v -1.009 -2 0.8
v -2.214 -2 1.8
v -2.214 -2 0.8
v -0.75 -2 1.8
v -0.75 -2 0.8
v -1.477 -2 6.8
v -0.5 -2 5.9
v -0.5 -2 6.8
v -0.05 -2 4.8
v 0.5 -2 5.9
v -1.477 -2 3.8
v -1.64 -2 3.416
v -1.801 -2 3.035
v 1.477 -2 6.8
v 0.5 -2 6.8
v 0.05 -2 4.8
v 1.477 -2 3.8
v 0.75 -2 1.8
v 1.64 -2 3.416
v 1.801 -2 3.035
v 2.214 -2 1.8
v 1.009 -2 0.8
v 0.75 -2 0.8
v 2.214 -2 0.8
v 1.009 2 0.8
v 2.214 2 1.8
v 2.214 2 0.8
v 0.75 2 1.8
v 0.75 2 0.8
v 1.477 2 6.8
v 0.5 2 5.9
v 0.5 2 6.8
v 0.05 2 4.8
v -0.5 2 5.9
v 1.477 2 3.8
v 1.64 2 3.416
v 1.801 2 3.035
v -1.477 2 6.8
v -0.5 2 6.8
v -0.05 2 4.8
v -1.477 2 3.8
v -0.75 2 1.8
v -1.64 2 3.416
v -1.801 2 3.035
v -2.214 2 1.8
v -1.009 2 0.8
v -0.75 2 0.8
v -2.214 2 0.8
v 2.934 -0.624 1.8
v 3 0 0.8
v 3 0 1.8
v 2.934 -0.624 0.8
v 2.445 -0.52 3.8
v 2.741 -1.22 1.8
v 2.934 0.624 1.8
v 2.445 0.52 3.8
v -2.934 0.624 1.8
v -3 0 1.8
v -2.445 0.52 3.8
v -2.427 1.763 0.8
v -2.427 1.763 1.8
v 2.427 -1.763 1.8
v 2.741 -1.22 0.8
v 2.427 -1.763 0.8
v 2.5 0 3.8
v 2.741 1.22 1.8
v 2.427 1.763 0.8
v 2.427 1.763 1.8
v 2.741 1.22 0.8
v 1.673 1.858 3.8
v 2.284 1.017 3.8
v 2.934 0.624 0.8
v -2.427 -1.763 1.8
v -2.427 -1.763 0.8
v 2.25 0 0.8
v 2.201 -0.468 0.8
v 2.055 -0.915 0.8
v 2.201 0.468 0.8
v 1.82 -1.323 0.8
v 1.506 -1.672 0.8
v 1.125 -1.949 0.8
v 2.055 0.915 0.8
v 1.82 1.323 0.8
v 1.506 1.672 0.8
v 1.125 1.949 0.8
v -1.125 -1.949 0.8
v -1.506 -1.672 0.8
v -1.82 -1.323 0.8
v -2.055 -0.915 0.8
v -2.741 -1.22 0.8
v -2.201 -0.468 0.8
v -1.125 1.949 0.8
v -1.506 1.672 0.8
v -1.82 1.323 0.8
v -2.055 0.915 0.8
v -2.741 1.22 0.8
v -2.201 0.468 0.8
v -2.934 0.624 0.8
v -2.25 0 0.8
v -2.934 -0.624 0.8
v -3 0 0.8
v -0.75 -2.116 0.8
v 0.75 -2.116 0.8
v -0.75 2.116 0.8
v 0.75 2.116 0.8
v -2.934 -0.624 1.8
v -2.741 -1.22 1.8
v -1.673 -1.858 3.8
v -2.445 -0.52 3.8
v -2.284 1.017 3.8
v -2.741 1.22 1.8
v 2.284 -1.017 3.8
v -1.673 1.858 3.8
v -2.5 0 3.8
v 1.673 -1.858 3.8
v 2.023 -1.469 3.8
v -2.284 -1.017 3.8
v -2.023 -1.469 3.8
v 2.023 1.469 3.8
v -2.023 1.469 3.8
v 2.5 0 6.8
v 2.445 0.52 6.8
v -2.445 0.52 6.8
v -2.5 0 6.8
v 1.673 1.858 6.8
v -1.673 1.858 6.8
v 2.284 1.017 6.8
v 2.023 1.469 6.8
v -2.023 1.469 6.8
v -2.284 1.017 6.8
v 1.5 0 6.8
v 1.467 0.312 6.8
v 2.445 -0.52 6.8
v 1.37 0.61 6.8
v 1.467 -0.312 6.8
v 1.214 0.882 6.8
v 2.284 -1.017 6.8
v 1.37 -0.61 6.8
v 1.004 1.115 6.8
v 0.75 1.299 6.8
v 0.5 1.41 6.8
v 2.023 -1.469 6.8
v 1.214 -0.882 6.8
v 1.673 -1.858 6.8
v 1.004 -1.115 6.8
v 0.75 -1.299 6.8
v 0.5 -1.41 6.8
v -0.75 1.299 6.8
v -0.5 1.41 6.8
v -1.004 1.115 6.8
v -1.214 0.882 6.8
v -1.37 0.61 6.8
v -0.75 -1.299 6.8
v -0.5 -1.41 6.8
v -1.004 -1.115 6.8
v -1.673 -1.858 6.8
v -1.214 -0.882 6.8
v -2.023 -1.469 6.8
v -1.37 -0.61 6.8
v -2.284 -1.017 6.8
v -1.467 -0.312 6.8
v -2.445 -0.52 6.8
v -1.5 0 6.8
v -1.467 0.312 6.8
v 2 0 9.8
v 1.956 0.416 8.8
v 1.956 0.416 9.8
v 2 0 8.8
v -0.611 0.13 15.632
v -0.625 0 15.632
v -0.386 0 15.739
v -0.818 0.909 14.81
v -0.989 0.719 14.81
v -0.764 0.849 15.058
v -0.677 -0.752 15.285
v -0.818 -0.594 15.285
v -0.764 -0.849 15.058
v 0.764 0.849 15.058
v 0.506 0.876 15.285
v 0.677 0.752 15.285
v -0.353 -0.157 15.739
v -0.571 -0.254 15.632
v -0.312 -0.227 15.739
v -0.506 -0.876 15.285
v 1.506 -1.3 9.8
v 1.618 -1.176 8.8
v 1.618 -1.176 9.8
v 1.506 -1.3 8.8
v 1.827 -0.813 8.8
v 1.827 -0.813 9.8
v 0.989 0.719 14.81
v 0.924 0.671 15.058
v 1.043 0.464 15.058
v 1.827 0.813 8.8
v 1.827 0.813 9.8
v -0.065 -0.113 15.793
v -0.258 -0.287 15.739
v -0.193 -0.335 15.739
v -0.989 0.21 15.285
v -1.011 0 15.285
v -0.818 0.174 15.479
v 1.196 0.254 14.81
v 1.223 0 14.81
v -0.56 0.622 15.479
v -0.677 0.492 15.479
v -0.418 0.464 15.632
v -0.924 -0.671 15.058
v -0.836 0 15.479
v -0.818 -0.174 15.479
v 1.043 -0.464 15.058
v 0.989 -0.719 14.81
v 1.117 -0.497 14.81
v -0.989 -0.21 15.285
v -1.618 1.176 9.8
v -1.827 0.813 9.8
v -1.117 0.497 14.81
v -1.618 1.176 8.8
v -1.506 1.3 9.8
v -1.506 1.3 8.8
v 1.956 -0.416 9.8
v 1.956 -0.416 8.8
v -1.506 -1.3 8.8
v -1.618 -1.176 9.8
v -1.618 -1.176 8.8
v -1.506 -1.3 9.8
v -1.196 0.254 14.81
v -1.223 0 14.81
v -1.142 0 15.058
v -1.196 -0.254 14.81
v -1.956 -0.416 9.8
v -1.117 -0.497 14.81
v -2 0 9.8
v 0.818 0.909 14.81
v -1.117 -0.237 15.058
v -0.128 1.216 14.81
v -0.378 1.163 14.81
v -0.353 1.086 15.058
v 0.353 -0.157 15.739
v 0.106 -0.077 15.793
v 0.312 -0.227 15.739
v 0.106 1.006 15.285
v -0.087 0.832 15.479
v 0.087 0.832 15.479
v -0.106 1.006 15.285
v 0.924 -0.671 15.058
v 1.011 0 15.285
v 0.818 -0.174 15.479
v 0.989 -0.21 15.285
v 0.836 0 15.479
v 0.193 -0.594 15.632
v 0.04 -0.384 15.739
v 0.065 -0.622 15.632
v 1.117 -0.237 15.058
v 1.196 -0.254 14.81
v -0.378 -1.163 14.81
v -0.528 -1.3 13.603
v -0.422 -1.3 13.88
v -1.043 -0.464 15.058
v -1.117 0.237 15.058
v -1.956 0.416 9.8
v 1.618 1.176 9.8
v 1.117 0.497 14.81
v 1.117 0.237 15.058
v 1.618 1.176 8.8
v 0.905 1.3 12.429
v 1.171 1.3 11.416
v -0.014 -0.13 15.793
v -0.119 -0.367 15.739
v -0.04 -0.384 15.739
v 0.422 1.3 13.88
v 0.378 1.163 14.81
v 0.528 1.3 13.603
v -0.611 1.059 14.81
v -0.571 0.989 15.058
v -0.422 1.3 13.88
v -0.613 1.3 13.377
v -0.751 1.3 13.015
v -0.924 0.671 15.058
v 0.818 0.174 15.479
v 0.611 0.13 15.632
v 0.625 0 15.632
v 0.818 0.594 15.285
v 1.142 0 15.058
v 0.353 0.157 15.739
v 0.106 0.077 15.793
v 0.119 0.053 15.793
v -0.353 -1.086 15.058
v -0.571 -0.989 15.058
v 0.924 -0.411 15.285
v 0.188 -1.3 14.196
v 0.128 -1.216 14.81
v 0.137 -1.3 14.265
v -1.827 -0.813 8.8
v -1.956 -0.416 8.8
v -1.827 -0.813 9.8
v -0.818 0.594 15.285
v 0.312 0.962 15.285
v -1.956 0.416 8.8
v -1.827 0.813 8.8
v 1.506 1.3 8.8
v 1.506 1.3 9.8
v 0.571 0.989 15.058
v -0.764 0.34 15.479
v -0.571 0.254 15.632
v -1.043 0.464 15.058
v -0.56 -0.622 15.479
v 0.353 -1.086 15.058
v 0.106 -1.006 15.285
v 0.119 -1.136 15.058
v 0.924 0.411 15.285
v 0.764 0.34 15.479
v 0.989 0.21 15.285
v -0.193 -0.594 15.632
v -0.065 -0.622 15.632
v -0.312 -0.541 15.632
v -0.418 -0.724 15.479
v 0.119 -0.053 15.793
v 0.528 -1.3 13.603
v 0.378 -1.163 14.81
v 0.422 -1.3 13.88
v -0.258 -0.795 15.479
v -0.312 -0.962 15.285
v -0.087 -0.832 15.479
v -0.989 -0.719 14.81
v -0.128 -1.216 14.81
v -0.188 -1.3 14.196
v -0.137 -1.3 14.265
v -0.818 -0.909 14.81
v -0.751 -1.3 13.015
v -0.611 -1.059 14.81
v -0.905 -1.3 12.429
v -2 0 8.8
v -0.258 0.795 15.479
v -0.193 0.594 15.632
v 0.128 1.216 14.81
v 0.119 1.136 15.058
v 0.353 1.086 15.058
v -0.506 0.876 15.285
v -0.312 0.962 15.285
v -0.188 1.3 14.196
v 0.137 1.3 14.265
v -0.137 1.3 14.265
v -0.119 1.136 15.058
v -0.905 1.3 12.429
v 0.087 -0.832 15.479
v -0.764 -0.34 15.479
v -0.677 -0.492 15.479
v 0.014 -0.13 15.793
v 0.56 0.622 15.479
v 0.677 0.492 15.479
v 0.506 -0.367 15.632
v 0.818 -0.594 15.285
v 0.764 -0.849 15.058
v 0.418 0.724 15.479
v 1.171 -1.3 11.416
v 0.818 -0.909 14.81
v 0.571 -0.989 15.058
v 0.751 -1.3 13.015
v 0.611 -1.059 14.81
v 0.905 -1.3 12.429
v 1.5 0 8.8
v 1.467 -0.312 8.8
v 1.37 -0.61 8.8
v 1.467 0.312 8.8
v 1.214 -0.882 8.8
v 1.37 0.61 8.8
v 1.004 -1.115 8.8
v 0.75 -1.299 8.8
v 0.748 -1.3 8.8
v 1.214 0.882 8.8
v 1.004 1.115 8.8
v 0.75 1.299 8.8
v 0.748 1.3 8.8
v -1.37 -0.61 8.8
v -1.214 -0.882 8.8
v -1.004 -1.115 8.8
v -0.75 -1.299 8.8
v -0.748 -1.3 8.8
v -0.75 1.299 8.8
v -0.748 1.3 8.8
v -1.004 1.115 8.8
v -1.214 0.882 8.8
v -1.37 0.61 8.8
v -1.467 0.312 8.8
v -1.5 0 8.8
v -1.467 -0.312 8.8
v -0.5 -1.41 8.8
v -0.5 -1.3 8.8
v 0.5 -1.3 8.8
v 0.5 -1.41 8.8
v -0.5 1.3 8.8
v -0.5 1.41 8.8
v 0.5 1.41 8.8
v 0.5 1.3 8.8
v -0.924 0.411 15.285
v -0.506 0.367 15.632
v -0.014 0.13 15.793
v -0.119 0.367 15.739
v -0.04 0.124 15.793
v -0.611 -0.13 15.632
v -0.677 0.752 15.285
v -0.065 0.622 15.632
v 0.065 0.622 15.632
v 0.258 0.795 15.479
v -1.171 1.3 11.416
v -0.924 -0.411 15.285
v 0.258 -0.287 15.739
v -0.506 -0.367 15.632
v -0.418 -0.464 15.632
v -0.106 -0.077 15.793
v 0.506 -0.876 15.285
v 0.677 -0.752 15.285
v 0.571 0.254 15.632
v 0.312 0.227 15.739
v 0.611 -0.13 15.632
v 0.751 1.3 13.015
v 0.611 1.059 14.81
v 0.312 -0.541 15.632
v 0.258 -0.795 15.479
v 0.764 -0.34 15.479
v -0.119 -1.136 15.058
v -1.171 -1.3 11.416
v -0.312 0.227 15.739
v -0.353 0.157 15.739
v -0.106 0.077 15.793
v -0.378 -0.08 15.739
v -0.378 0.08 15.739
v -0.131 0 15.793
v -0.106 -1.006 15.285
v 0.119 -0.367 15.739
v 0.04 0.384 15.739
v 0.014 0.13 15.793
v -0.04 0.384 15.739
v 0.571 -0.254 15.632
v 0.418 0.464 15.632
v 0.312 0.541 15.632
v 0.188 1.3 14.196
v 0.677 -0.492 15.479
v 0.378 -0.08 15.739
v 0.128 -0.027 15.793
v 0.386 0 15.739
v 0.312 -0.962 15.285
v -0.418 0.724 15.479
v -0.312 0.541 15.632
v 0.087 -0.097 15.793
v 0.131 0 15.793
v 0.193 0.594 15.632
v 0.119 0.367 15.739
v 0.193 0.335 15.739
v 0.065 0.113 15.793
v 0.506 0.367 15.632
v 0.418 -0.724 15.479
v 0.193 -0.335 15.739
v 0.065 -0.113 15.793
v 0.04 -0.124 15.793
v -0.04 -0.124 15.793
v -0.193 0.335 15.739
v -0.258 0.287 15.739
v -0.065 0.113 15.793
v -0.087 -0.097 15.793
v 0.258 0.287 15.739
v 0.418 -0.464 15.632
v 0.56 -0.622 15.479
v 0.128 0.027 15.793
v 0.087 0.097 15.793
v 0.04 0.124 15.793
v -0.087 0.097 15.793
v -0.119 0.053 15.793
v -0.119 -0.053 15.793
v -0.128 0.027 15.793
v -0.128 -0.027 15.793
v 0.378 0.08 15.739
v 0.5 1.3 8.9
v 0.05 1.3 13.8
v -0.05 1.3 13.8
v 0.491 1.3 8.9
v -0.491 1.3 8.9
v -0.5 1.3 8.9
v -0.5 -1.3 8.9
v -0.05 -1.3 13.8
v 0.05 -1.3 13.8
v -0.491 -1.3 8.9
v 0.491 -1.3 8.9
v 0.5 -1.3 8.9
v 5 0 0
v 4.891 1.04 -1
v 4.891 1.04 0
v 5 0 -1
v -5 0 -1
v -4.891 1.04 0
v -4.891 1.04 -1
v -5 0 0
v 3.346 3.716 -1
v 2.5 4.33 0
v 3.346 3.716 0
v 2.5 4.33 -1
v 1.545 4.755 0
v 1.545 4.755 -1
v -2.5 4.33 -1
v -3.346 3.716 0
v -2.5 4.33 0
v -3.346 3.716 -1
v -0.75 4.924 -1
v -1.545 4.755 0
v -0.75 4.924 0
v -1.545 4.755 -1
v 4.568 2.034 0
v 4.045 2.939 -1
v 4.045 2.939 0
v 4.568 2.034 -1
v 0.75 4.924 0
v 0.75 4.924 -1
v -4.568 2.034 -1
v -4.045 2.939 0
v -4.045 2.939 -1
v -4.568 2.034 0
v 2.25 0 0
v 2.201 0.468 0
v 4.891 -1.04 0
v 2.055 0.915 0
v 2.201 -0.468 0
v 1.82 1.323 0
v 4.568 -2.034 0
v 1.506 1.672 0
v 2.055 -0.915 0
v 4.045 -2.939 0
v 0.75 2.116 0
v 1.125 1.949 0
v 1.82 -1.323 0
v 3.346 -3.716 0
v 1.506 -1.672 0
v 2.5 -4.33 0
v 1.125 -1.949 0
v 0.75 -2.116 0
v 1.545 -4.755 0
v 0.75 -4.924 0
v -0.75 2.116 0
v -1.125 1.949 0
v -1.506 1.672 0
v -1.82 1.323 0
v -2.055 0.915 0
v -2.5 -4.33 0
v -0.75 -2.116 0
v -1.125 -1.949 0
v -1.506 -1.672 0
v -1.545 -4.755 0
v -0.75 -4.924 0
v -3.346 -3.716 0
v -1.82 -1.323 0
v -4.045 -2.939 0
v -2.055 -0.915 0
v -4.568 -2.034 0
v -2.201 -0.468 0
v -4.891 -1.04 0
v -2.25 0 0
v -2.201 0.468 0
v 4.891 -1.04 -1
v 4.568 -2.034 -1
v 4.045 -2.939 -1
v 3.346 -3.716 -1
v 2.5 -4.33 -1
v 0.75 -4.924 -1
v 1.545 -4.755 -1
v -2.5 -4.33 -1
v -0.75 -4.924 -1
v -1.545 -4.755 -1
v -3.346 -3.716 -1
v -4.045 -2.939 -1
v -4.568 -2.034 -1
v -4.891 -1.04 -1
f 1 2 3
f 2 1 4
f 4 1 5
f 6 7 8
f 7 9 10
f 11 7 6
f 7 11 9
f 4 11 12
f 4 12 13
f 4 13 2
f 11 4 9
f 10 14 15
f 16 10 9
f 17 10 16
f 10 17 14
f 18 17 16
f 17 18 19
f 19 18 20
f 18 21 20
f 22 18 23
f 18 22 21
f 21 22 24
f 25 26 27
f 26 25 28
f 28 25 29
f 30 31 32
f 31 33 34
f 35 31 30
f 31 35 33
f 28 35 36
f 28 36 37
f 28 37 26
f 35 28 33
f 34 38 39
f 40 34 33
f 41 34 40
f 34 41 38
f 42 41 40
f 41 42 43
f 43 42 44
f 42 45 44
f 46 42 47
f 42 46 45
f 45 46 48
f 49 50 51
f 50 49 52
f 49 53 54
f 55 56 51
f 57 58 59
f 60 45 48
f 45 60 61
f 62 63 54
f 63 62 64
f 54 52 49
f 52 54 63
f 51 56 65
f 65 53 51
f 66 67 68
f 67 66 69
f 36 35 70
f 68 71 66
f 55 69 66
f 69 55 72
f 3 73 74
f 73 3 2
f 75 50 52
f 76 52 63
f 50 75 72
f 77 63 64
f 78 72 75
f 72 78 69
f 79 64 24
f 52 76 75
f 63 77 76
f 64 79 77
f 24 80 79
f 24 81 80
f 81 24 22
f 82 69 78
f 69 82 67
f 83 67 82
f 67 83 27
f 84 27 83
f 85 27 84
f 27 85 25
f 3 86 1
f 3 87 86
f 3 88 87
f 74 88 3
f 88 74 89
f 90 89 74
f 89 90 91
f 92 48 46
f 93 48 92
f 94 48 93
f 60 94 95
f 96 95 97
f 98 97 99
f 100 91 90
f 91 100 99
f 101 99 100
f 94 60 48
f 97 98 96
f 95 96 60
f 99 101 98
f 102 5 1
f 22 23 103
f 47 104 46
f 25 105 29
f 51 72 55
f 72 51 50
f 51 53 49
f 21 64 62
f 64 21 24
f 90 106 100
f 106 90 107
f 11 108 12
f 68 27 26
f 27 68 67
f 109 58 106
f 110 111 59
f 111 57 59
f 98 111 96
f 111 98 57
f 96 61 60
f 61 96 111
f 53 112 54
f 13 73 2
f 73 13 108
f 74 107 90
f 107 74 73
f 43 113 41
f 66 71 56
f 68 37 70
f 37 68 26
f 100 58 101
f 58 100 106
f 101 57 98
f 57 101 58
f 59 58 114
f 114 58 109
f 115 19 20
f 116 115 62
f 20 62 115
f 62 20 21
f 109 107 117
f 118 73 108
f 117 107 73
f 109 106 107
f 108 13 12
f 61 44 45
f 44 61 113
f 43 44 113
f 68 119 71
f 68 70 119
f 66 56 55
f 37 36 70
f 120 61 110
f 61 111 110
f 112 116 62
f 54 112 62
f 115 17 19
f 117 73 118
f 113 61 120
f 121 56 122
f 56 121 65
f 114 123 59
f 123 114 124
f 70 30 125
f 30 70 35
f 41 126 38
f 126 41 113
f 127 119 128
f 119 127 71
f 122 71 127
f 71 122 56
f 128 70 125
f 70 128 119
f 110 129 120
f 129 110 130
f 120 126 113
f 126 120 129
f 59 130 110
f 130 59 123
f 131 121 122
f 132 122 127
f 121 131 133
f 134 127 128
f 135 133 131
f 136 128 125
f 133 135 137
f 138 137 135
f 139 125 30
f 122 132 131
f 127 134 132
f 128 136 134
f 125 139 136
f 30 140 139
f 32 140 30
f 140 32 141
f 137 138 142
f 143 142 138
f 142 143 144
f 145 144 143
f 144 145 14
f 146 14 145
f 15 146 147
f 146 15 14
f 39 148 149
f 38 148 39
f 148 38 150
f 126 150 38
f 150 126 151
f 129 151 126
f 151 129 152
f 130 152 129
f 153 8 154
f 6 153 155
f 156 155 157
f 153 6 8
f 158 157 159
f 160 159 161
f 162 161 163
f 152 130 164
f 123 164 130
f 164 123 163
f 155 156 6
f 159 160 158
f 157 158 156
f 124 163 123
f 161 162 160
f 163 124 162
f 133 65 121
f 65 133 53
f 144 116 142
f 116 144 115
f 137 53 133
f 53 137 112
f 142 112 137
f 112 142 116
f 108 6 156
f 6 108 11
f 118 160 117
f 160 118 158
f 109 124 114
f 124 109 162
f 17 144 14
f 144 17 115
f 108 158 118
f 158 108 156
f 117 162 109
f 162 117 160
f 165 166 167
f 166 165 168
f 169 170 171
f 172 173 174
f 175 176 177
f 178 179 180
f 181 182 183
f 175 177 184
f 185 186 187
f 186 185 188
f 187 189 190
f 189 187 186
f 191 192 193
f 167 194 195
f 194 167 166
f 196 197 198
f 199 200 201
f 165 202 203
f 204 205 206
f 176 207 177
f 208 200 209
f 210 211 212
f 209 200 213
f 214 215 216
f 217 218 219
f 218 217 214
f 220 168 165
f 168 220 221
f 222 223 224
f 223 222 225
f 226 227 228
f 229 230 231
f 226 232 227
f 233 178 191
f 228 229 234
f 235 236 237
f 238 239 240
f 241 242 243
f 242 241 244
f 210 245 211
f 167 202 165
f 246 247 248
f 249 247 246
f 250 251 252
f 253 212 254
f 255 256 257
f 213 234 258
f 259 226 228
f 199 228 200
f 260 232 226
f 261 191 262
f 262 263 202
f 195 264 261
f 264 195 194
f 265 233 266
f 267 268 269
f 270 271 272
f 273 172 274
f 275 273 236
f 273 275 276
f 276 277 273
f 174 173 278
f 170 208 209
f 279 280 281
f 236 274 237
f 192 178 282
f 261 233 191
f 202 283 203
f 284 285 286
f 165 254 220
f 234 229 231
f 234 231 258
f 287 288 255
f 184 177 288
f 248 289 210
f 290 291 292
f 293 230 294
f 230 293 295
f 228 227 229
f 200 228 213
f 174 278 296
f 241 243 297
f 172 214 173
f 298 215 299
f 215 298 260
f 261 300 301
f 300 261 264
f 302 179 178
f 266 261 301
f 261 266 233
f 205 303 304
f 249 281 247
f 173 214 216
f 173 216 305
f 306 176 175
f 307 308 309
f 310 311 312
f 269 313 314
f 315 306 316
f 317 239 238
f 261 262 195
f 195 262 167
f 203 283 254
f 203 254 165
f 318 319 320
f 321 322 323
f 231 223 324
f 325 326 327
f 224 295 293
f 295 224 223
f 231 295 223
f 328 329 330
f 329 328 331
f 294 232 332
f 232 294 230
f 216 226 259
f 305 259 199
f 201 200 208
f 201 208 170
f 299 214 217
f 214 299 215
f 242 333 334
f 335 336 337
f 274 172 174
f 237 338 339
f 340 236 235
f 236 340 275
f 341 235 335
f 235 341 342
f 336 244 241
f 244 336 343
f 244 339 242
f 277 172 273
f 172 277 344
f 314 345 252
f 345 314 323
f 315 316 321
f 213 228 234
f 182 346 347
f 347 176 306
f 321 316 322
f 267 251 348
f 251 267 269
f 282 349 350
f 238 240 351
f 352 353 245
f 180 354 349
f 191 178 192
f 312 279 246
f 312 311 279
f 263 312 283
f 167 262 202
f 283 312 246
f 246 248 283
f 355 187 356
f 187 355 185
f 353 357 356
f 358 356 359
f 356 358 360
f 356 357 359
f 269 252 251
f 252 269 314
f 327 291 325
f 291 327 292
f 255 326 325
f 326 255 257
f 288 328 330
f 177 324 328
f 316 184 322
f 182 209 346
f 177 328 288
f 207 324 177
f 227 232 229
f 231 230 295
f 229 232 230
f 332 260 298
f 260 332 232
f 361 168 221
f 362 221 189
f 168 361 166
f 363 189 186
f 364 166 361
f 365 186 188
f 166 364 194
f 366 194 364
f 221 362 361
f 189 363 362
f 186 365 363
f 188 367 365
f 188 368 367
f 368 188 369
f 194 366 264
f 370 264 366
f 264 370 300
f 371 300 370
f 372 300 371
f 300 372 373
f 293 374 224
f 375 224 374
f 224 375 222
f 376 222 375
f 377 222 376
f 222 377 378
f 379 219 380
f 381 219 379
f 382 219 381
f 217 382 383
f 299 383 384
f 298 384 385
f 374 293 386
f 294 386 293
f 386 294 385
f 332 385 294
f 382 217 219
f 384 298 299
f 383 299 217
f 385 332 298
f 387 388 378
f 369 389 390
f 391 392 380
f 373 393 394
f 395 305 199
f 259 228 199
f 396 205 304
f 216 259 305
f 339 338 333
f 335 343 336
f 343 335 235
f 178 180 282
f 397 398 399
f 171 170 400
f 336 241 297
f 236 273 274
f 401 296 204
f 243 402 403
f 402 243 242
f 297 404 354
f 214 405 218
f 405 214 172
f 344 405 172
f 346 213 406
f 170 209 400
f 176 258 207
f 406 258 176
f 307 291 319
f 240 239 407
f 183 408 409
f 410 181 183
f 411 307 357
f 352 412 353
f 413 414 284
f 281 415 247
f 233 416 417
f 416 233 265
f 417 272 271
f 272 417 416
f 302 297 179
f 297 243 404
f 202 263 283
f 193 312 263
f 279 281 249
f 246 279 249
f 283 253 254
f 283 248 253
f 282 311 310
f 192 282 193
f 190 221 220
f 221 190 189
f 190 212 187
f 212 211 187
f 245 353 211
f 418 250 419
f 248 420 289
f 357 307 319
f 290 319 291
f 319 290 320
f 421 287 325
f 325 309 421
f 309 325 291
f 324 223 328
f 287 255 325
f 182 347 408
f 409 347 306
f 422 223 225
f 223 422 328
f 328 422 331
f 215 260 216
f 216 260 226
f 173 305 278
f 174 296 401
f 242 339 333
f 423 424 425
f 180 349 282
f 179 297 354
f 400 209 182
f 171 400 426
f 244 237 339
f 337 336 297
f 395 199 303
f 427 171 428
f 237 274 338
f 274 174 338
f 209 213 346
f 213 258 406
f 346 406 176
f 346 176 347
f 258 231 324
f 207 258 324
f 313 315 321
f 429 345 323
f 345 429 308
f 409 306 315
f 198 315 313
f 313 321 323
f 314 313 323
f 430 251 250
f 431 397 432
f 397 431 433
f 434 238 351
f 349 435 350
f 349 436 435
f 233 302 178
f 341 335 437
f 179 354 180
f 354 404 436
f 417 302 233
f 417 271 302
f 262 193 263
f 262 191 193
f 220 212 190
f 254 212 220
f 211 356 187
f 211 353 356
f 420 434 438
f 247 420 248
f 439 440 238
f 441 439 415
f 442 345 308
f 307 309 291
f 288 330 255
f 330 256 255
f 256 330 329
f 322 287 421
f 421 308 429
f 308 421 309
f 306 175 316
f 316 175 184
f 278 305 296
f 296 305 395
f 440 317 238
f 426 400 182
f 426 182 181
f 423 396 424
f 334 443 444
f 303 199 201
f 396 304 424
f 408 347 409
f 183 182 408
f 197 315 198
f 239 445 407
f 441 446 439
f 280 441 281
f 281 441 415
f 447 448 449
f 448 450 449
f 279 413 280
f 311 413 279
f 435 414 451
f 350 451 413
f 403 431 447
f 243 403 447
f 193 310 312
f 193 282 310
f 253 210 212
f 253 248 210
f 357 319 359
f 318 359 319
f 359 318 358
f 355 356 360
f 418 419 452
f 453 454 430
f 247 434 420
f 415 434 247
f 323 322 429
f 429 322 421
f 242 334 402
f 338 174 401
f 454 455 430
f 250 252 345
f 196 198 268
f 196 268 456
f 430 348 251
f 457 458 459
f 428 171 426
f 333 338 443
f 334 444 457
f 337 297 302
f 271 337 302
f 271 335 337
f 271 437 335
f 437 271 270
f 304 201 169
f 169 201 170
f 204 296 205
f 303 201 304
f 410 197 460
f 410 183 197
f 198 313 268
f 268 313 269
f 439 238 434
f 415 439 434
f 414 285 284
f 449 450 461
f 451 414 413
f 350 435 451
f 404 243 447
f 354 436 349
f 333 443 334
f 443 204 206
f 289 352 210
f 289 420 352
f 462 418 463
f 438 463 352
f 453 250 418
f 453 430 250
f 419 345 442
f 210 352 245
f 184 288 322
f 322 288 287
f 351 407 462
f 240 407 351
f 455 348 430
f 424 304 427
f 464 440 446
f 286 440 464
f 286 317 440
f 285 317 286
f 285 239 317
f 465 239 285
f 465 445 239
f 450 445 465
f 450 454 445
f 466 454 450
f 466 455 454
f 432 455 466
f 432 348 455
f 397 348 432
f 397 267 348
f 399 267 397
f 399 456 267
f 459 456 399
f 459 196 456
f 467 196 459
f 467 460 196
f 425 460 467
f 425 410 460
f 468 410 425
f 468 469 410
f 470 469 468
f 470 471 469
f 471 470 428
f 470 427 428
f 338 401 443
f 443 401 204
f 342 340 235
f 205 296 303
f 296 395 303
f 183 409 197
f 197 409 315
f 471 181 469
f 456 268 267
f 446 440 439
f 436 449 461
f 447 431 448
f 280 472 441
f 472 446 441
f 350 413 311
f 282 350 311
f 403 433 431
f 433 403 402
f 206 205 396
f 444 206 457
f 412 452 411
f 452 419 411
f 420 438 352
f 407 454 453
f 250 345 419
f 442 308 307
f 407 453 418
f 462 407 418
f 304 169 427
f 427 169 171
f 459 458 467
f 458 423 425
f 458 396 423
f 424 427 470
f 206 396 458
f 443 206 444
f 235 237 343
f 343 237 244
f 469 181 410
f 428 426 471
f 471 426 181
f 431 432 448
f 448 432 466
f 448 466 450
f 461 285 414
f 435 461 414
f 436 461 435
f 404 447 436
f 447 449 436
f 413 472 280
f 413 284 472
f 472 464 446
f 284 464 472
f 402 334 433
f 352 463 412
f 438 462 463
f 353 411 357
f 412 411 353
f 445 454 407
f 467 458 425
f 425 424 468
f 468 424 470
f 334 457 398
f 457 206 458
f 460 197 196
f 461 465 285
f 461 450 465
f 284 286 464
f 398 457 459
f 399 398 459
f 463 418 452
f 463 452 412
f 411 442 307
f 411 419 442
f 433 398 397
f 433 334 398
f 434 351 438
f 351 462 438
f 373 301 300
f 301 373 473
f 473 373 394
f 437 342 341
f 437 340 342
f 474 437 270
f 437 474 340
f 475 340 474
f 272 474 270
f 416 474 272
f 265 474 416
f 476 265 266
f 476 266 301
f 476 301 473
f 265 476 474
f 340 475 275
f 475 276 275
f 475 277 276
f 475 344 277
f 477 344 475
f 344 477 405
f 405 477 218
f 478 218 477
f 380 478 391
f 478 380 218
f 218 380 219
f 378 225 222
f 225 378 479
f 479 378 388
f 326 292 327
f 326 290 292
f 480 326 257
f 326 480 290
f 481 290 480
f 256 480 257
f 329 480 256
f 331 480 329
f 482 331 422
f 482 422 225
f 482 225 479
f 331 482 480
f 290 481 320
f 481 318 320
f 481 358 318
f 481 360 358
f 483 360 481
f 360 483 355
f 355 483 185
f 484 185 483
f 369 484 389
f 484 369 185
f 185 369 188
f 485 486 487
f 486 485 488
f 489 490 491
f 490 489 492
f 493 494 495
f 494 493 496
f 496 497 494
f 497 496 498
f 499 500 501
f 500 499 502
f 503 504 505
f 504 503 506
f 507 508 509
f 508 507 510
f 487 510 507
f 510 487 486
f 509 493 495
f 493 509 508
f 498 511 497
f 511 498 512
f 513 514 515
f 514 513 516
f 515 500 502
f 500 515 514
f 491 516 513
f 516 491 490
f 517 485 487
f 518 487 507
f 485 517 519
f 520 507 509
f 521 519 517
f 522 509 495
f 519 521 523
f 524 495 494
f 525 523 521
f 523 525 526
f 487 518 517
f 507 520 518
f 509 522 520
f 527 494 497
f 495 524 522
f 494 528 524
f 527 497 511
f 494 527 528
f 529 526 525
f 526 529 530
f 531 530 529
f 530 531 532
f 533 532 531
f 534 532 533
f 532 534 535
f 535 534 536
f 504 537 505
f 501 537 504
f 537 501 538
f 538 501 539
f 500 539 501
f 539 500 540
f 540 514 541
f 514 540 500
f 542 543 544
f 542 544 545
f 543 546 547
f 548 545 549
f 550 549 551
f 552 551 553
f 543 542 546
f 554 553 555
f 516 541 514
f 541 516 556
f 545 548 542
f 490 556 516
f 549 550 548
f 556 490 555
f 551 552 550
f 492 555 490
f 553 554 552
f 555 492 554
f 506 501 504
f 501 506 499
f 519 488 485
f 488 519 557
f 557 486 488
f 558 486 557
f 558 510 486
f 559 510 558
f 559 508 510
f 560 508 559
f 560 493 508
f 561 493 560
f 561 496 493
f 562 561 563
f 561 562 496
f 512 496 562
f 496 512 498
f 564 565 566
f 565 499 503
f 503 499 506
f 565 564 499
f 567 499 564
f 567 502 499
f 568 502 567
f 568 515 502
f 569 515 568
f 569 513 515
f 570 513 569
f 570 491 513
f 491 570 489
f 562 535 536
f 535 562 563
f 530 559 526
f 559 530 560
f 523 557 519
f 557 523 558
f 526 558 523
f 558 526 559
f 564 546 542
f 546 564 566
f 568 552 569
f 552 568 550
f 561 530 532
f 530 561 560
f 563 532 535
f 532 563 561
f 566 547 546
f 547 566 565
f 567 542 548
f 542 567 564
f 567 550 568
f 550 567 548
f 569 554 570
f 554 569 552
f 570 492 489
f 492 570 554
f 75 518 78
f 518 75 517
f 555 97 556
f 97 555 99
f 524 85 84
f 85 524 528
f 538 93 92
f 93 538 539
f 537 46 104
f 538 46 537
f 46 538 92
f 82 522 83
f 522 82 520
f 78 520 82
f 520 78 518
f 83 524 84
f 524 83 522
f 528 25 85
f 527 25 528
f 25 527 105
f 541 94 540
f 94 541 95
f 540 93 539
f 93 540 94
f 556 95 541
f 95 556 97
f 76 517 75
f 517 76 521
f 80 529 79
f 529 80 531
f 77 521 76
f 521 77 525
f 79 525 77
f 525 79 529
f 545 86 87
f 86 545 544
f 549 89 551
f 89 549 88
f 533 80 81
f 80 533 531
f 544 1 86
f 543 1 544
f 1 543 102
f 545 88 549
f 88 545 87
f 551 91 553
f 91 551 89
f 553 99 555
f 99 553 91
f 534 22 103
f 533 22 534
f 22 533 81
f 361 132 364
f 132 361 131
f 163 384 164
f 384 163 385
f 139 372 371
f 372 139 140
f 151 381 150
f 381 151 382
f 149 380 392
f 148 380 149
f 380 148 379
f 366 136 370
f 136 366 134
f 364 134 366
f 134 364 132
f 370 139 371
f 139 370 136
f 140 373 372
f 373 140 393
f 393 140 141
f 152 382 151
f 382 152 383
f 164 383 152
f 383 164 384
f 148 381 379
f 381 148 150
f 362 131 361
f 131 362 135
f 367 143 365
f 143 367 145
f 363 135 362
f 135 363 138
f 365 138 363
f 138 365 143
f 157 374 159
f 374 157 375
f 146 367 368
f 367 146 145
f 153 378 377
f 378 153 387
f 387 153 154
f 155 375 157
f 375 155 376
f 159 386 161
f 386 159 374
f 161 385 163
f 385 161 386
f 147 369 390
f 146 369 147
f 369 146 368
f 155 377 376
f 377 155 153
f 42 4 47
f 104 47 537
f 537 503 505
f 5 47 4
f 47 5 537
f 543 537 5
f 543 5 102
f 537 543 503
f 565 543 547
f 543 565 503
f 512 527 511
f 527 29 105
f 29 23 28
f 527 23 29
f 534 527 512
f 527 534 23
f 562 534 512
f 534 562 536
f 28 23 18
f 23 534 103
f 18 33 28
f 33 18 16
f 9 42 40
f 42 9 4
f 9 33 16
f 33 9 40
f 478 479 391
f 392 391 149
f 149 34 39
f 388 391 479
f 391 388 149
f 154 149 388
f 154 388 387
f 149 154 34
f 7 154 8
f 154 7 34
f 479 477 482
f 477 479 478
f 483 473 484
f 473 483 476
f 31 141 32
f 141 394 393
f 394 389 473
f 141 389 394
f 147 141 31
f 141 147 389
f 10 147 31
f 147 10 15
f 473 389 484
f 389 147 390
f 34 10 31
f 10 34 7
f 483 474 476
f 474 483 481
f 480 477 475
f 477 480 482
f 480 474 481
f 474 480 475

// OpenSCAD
$fn=30;

%difference() {
    translate([0,0,0.8/2]) cube([50,50,0.8], center=true);
    translate([0,0,-0.1]) cylinder(d=5, h=1, $fn=30);
}

module triangle(x,y,z) {
    points=[[x/2,-z/2],
            [0.05,z/2],
            [-0.05,z/2],
            [-x/2,-z/2]];
    rotate([90,0,0]) translate([0,0,-y/2]) linear_extrude(height=y) polygon(points=points);
}

translate([0,0,0.8]) difference() {
    union() {
        translate([0,0,-1.8]) cylinder(d=10, h=1, $fn=30);
        translate([0,0,-0.8]) cylinder(d=4.5, h=0.8, $fn=30);
        intersection() {
            cube([7,4,8], center=true);
            hull() {
                cylinder(d=6, h=1);
                translate([0,0,2]) cylinder(d=5, h=1);
            }
        }
        translate([0,0,3]) intersection() {
            cylinder(d=5, h=3);
            cube([7,4,8], center=true);
        }
        
        translate([0,0,6]) cylinder(d=3,h=2);

        translate([0,0,8]) intersection() {
            hull() {
                cylinder(d=4,h=1);
                translate([0,0,7-2.5/2]) sphere(d=2.5);
            }
            cube([7,2.6,14], center=true);
        }
    }
    
    //translate([-2,0,1.8]) rotate([0,5,0]) cube([0.5,7,4],center=true);
    //translate([2,0,1.8]) rotate([0,-5,0]) cube([0.5,7,4],center=true);
    
    //translate([-1.25,0,8.5]) rotate([0,8,0]) cube([0.5,7,5],center=true);
    //translate([1.25,0,8.5]) rotate([0,-8,0]) cube([0.5,7,5],center=true);
    
    //cube([1,12,8], center=true);
    //translate([0,0,9]) cube([0.6,12,7], center=true);
    
    translate([0,0,-1]) cube([1.5,12,4], center=true);
    translate([0,0,2.5]) triangle(1.5,12,3);
    translate([0,0,6.6]) cube([1,12,3], center=true);
    translate([0,0,10.5]) triangle(1,12,5);
}
